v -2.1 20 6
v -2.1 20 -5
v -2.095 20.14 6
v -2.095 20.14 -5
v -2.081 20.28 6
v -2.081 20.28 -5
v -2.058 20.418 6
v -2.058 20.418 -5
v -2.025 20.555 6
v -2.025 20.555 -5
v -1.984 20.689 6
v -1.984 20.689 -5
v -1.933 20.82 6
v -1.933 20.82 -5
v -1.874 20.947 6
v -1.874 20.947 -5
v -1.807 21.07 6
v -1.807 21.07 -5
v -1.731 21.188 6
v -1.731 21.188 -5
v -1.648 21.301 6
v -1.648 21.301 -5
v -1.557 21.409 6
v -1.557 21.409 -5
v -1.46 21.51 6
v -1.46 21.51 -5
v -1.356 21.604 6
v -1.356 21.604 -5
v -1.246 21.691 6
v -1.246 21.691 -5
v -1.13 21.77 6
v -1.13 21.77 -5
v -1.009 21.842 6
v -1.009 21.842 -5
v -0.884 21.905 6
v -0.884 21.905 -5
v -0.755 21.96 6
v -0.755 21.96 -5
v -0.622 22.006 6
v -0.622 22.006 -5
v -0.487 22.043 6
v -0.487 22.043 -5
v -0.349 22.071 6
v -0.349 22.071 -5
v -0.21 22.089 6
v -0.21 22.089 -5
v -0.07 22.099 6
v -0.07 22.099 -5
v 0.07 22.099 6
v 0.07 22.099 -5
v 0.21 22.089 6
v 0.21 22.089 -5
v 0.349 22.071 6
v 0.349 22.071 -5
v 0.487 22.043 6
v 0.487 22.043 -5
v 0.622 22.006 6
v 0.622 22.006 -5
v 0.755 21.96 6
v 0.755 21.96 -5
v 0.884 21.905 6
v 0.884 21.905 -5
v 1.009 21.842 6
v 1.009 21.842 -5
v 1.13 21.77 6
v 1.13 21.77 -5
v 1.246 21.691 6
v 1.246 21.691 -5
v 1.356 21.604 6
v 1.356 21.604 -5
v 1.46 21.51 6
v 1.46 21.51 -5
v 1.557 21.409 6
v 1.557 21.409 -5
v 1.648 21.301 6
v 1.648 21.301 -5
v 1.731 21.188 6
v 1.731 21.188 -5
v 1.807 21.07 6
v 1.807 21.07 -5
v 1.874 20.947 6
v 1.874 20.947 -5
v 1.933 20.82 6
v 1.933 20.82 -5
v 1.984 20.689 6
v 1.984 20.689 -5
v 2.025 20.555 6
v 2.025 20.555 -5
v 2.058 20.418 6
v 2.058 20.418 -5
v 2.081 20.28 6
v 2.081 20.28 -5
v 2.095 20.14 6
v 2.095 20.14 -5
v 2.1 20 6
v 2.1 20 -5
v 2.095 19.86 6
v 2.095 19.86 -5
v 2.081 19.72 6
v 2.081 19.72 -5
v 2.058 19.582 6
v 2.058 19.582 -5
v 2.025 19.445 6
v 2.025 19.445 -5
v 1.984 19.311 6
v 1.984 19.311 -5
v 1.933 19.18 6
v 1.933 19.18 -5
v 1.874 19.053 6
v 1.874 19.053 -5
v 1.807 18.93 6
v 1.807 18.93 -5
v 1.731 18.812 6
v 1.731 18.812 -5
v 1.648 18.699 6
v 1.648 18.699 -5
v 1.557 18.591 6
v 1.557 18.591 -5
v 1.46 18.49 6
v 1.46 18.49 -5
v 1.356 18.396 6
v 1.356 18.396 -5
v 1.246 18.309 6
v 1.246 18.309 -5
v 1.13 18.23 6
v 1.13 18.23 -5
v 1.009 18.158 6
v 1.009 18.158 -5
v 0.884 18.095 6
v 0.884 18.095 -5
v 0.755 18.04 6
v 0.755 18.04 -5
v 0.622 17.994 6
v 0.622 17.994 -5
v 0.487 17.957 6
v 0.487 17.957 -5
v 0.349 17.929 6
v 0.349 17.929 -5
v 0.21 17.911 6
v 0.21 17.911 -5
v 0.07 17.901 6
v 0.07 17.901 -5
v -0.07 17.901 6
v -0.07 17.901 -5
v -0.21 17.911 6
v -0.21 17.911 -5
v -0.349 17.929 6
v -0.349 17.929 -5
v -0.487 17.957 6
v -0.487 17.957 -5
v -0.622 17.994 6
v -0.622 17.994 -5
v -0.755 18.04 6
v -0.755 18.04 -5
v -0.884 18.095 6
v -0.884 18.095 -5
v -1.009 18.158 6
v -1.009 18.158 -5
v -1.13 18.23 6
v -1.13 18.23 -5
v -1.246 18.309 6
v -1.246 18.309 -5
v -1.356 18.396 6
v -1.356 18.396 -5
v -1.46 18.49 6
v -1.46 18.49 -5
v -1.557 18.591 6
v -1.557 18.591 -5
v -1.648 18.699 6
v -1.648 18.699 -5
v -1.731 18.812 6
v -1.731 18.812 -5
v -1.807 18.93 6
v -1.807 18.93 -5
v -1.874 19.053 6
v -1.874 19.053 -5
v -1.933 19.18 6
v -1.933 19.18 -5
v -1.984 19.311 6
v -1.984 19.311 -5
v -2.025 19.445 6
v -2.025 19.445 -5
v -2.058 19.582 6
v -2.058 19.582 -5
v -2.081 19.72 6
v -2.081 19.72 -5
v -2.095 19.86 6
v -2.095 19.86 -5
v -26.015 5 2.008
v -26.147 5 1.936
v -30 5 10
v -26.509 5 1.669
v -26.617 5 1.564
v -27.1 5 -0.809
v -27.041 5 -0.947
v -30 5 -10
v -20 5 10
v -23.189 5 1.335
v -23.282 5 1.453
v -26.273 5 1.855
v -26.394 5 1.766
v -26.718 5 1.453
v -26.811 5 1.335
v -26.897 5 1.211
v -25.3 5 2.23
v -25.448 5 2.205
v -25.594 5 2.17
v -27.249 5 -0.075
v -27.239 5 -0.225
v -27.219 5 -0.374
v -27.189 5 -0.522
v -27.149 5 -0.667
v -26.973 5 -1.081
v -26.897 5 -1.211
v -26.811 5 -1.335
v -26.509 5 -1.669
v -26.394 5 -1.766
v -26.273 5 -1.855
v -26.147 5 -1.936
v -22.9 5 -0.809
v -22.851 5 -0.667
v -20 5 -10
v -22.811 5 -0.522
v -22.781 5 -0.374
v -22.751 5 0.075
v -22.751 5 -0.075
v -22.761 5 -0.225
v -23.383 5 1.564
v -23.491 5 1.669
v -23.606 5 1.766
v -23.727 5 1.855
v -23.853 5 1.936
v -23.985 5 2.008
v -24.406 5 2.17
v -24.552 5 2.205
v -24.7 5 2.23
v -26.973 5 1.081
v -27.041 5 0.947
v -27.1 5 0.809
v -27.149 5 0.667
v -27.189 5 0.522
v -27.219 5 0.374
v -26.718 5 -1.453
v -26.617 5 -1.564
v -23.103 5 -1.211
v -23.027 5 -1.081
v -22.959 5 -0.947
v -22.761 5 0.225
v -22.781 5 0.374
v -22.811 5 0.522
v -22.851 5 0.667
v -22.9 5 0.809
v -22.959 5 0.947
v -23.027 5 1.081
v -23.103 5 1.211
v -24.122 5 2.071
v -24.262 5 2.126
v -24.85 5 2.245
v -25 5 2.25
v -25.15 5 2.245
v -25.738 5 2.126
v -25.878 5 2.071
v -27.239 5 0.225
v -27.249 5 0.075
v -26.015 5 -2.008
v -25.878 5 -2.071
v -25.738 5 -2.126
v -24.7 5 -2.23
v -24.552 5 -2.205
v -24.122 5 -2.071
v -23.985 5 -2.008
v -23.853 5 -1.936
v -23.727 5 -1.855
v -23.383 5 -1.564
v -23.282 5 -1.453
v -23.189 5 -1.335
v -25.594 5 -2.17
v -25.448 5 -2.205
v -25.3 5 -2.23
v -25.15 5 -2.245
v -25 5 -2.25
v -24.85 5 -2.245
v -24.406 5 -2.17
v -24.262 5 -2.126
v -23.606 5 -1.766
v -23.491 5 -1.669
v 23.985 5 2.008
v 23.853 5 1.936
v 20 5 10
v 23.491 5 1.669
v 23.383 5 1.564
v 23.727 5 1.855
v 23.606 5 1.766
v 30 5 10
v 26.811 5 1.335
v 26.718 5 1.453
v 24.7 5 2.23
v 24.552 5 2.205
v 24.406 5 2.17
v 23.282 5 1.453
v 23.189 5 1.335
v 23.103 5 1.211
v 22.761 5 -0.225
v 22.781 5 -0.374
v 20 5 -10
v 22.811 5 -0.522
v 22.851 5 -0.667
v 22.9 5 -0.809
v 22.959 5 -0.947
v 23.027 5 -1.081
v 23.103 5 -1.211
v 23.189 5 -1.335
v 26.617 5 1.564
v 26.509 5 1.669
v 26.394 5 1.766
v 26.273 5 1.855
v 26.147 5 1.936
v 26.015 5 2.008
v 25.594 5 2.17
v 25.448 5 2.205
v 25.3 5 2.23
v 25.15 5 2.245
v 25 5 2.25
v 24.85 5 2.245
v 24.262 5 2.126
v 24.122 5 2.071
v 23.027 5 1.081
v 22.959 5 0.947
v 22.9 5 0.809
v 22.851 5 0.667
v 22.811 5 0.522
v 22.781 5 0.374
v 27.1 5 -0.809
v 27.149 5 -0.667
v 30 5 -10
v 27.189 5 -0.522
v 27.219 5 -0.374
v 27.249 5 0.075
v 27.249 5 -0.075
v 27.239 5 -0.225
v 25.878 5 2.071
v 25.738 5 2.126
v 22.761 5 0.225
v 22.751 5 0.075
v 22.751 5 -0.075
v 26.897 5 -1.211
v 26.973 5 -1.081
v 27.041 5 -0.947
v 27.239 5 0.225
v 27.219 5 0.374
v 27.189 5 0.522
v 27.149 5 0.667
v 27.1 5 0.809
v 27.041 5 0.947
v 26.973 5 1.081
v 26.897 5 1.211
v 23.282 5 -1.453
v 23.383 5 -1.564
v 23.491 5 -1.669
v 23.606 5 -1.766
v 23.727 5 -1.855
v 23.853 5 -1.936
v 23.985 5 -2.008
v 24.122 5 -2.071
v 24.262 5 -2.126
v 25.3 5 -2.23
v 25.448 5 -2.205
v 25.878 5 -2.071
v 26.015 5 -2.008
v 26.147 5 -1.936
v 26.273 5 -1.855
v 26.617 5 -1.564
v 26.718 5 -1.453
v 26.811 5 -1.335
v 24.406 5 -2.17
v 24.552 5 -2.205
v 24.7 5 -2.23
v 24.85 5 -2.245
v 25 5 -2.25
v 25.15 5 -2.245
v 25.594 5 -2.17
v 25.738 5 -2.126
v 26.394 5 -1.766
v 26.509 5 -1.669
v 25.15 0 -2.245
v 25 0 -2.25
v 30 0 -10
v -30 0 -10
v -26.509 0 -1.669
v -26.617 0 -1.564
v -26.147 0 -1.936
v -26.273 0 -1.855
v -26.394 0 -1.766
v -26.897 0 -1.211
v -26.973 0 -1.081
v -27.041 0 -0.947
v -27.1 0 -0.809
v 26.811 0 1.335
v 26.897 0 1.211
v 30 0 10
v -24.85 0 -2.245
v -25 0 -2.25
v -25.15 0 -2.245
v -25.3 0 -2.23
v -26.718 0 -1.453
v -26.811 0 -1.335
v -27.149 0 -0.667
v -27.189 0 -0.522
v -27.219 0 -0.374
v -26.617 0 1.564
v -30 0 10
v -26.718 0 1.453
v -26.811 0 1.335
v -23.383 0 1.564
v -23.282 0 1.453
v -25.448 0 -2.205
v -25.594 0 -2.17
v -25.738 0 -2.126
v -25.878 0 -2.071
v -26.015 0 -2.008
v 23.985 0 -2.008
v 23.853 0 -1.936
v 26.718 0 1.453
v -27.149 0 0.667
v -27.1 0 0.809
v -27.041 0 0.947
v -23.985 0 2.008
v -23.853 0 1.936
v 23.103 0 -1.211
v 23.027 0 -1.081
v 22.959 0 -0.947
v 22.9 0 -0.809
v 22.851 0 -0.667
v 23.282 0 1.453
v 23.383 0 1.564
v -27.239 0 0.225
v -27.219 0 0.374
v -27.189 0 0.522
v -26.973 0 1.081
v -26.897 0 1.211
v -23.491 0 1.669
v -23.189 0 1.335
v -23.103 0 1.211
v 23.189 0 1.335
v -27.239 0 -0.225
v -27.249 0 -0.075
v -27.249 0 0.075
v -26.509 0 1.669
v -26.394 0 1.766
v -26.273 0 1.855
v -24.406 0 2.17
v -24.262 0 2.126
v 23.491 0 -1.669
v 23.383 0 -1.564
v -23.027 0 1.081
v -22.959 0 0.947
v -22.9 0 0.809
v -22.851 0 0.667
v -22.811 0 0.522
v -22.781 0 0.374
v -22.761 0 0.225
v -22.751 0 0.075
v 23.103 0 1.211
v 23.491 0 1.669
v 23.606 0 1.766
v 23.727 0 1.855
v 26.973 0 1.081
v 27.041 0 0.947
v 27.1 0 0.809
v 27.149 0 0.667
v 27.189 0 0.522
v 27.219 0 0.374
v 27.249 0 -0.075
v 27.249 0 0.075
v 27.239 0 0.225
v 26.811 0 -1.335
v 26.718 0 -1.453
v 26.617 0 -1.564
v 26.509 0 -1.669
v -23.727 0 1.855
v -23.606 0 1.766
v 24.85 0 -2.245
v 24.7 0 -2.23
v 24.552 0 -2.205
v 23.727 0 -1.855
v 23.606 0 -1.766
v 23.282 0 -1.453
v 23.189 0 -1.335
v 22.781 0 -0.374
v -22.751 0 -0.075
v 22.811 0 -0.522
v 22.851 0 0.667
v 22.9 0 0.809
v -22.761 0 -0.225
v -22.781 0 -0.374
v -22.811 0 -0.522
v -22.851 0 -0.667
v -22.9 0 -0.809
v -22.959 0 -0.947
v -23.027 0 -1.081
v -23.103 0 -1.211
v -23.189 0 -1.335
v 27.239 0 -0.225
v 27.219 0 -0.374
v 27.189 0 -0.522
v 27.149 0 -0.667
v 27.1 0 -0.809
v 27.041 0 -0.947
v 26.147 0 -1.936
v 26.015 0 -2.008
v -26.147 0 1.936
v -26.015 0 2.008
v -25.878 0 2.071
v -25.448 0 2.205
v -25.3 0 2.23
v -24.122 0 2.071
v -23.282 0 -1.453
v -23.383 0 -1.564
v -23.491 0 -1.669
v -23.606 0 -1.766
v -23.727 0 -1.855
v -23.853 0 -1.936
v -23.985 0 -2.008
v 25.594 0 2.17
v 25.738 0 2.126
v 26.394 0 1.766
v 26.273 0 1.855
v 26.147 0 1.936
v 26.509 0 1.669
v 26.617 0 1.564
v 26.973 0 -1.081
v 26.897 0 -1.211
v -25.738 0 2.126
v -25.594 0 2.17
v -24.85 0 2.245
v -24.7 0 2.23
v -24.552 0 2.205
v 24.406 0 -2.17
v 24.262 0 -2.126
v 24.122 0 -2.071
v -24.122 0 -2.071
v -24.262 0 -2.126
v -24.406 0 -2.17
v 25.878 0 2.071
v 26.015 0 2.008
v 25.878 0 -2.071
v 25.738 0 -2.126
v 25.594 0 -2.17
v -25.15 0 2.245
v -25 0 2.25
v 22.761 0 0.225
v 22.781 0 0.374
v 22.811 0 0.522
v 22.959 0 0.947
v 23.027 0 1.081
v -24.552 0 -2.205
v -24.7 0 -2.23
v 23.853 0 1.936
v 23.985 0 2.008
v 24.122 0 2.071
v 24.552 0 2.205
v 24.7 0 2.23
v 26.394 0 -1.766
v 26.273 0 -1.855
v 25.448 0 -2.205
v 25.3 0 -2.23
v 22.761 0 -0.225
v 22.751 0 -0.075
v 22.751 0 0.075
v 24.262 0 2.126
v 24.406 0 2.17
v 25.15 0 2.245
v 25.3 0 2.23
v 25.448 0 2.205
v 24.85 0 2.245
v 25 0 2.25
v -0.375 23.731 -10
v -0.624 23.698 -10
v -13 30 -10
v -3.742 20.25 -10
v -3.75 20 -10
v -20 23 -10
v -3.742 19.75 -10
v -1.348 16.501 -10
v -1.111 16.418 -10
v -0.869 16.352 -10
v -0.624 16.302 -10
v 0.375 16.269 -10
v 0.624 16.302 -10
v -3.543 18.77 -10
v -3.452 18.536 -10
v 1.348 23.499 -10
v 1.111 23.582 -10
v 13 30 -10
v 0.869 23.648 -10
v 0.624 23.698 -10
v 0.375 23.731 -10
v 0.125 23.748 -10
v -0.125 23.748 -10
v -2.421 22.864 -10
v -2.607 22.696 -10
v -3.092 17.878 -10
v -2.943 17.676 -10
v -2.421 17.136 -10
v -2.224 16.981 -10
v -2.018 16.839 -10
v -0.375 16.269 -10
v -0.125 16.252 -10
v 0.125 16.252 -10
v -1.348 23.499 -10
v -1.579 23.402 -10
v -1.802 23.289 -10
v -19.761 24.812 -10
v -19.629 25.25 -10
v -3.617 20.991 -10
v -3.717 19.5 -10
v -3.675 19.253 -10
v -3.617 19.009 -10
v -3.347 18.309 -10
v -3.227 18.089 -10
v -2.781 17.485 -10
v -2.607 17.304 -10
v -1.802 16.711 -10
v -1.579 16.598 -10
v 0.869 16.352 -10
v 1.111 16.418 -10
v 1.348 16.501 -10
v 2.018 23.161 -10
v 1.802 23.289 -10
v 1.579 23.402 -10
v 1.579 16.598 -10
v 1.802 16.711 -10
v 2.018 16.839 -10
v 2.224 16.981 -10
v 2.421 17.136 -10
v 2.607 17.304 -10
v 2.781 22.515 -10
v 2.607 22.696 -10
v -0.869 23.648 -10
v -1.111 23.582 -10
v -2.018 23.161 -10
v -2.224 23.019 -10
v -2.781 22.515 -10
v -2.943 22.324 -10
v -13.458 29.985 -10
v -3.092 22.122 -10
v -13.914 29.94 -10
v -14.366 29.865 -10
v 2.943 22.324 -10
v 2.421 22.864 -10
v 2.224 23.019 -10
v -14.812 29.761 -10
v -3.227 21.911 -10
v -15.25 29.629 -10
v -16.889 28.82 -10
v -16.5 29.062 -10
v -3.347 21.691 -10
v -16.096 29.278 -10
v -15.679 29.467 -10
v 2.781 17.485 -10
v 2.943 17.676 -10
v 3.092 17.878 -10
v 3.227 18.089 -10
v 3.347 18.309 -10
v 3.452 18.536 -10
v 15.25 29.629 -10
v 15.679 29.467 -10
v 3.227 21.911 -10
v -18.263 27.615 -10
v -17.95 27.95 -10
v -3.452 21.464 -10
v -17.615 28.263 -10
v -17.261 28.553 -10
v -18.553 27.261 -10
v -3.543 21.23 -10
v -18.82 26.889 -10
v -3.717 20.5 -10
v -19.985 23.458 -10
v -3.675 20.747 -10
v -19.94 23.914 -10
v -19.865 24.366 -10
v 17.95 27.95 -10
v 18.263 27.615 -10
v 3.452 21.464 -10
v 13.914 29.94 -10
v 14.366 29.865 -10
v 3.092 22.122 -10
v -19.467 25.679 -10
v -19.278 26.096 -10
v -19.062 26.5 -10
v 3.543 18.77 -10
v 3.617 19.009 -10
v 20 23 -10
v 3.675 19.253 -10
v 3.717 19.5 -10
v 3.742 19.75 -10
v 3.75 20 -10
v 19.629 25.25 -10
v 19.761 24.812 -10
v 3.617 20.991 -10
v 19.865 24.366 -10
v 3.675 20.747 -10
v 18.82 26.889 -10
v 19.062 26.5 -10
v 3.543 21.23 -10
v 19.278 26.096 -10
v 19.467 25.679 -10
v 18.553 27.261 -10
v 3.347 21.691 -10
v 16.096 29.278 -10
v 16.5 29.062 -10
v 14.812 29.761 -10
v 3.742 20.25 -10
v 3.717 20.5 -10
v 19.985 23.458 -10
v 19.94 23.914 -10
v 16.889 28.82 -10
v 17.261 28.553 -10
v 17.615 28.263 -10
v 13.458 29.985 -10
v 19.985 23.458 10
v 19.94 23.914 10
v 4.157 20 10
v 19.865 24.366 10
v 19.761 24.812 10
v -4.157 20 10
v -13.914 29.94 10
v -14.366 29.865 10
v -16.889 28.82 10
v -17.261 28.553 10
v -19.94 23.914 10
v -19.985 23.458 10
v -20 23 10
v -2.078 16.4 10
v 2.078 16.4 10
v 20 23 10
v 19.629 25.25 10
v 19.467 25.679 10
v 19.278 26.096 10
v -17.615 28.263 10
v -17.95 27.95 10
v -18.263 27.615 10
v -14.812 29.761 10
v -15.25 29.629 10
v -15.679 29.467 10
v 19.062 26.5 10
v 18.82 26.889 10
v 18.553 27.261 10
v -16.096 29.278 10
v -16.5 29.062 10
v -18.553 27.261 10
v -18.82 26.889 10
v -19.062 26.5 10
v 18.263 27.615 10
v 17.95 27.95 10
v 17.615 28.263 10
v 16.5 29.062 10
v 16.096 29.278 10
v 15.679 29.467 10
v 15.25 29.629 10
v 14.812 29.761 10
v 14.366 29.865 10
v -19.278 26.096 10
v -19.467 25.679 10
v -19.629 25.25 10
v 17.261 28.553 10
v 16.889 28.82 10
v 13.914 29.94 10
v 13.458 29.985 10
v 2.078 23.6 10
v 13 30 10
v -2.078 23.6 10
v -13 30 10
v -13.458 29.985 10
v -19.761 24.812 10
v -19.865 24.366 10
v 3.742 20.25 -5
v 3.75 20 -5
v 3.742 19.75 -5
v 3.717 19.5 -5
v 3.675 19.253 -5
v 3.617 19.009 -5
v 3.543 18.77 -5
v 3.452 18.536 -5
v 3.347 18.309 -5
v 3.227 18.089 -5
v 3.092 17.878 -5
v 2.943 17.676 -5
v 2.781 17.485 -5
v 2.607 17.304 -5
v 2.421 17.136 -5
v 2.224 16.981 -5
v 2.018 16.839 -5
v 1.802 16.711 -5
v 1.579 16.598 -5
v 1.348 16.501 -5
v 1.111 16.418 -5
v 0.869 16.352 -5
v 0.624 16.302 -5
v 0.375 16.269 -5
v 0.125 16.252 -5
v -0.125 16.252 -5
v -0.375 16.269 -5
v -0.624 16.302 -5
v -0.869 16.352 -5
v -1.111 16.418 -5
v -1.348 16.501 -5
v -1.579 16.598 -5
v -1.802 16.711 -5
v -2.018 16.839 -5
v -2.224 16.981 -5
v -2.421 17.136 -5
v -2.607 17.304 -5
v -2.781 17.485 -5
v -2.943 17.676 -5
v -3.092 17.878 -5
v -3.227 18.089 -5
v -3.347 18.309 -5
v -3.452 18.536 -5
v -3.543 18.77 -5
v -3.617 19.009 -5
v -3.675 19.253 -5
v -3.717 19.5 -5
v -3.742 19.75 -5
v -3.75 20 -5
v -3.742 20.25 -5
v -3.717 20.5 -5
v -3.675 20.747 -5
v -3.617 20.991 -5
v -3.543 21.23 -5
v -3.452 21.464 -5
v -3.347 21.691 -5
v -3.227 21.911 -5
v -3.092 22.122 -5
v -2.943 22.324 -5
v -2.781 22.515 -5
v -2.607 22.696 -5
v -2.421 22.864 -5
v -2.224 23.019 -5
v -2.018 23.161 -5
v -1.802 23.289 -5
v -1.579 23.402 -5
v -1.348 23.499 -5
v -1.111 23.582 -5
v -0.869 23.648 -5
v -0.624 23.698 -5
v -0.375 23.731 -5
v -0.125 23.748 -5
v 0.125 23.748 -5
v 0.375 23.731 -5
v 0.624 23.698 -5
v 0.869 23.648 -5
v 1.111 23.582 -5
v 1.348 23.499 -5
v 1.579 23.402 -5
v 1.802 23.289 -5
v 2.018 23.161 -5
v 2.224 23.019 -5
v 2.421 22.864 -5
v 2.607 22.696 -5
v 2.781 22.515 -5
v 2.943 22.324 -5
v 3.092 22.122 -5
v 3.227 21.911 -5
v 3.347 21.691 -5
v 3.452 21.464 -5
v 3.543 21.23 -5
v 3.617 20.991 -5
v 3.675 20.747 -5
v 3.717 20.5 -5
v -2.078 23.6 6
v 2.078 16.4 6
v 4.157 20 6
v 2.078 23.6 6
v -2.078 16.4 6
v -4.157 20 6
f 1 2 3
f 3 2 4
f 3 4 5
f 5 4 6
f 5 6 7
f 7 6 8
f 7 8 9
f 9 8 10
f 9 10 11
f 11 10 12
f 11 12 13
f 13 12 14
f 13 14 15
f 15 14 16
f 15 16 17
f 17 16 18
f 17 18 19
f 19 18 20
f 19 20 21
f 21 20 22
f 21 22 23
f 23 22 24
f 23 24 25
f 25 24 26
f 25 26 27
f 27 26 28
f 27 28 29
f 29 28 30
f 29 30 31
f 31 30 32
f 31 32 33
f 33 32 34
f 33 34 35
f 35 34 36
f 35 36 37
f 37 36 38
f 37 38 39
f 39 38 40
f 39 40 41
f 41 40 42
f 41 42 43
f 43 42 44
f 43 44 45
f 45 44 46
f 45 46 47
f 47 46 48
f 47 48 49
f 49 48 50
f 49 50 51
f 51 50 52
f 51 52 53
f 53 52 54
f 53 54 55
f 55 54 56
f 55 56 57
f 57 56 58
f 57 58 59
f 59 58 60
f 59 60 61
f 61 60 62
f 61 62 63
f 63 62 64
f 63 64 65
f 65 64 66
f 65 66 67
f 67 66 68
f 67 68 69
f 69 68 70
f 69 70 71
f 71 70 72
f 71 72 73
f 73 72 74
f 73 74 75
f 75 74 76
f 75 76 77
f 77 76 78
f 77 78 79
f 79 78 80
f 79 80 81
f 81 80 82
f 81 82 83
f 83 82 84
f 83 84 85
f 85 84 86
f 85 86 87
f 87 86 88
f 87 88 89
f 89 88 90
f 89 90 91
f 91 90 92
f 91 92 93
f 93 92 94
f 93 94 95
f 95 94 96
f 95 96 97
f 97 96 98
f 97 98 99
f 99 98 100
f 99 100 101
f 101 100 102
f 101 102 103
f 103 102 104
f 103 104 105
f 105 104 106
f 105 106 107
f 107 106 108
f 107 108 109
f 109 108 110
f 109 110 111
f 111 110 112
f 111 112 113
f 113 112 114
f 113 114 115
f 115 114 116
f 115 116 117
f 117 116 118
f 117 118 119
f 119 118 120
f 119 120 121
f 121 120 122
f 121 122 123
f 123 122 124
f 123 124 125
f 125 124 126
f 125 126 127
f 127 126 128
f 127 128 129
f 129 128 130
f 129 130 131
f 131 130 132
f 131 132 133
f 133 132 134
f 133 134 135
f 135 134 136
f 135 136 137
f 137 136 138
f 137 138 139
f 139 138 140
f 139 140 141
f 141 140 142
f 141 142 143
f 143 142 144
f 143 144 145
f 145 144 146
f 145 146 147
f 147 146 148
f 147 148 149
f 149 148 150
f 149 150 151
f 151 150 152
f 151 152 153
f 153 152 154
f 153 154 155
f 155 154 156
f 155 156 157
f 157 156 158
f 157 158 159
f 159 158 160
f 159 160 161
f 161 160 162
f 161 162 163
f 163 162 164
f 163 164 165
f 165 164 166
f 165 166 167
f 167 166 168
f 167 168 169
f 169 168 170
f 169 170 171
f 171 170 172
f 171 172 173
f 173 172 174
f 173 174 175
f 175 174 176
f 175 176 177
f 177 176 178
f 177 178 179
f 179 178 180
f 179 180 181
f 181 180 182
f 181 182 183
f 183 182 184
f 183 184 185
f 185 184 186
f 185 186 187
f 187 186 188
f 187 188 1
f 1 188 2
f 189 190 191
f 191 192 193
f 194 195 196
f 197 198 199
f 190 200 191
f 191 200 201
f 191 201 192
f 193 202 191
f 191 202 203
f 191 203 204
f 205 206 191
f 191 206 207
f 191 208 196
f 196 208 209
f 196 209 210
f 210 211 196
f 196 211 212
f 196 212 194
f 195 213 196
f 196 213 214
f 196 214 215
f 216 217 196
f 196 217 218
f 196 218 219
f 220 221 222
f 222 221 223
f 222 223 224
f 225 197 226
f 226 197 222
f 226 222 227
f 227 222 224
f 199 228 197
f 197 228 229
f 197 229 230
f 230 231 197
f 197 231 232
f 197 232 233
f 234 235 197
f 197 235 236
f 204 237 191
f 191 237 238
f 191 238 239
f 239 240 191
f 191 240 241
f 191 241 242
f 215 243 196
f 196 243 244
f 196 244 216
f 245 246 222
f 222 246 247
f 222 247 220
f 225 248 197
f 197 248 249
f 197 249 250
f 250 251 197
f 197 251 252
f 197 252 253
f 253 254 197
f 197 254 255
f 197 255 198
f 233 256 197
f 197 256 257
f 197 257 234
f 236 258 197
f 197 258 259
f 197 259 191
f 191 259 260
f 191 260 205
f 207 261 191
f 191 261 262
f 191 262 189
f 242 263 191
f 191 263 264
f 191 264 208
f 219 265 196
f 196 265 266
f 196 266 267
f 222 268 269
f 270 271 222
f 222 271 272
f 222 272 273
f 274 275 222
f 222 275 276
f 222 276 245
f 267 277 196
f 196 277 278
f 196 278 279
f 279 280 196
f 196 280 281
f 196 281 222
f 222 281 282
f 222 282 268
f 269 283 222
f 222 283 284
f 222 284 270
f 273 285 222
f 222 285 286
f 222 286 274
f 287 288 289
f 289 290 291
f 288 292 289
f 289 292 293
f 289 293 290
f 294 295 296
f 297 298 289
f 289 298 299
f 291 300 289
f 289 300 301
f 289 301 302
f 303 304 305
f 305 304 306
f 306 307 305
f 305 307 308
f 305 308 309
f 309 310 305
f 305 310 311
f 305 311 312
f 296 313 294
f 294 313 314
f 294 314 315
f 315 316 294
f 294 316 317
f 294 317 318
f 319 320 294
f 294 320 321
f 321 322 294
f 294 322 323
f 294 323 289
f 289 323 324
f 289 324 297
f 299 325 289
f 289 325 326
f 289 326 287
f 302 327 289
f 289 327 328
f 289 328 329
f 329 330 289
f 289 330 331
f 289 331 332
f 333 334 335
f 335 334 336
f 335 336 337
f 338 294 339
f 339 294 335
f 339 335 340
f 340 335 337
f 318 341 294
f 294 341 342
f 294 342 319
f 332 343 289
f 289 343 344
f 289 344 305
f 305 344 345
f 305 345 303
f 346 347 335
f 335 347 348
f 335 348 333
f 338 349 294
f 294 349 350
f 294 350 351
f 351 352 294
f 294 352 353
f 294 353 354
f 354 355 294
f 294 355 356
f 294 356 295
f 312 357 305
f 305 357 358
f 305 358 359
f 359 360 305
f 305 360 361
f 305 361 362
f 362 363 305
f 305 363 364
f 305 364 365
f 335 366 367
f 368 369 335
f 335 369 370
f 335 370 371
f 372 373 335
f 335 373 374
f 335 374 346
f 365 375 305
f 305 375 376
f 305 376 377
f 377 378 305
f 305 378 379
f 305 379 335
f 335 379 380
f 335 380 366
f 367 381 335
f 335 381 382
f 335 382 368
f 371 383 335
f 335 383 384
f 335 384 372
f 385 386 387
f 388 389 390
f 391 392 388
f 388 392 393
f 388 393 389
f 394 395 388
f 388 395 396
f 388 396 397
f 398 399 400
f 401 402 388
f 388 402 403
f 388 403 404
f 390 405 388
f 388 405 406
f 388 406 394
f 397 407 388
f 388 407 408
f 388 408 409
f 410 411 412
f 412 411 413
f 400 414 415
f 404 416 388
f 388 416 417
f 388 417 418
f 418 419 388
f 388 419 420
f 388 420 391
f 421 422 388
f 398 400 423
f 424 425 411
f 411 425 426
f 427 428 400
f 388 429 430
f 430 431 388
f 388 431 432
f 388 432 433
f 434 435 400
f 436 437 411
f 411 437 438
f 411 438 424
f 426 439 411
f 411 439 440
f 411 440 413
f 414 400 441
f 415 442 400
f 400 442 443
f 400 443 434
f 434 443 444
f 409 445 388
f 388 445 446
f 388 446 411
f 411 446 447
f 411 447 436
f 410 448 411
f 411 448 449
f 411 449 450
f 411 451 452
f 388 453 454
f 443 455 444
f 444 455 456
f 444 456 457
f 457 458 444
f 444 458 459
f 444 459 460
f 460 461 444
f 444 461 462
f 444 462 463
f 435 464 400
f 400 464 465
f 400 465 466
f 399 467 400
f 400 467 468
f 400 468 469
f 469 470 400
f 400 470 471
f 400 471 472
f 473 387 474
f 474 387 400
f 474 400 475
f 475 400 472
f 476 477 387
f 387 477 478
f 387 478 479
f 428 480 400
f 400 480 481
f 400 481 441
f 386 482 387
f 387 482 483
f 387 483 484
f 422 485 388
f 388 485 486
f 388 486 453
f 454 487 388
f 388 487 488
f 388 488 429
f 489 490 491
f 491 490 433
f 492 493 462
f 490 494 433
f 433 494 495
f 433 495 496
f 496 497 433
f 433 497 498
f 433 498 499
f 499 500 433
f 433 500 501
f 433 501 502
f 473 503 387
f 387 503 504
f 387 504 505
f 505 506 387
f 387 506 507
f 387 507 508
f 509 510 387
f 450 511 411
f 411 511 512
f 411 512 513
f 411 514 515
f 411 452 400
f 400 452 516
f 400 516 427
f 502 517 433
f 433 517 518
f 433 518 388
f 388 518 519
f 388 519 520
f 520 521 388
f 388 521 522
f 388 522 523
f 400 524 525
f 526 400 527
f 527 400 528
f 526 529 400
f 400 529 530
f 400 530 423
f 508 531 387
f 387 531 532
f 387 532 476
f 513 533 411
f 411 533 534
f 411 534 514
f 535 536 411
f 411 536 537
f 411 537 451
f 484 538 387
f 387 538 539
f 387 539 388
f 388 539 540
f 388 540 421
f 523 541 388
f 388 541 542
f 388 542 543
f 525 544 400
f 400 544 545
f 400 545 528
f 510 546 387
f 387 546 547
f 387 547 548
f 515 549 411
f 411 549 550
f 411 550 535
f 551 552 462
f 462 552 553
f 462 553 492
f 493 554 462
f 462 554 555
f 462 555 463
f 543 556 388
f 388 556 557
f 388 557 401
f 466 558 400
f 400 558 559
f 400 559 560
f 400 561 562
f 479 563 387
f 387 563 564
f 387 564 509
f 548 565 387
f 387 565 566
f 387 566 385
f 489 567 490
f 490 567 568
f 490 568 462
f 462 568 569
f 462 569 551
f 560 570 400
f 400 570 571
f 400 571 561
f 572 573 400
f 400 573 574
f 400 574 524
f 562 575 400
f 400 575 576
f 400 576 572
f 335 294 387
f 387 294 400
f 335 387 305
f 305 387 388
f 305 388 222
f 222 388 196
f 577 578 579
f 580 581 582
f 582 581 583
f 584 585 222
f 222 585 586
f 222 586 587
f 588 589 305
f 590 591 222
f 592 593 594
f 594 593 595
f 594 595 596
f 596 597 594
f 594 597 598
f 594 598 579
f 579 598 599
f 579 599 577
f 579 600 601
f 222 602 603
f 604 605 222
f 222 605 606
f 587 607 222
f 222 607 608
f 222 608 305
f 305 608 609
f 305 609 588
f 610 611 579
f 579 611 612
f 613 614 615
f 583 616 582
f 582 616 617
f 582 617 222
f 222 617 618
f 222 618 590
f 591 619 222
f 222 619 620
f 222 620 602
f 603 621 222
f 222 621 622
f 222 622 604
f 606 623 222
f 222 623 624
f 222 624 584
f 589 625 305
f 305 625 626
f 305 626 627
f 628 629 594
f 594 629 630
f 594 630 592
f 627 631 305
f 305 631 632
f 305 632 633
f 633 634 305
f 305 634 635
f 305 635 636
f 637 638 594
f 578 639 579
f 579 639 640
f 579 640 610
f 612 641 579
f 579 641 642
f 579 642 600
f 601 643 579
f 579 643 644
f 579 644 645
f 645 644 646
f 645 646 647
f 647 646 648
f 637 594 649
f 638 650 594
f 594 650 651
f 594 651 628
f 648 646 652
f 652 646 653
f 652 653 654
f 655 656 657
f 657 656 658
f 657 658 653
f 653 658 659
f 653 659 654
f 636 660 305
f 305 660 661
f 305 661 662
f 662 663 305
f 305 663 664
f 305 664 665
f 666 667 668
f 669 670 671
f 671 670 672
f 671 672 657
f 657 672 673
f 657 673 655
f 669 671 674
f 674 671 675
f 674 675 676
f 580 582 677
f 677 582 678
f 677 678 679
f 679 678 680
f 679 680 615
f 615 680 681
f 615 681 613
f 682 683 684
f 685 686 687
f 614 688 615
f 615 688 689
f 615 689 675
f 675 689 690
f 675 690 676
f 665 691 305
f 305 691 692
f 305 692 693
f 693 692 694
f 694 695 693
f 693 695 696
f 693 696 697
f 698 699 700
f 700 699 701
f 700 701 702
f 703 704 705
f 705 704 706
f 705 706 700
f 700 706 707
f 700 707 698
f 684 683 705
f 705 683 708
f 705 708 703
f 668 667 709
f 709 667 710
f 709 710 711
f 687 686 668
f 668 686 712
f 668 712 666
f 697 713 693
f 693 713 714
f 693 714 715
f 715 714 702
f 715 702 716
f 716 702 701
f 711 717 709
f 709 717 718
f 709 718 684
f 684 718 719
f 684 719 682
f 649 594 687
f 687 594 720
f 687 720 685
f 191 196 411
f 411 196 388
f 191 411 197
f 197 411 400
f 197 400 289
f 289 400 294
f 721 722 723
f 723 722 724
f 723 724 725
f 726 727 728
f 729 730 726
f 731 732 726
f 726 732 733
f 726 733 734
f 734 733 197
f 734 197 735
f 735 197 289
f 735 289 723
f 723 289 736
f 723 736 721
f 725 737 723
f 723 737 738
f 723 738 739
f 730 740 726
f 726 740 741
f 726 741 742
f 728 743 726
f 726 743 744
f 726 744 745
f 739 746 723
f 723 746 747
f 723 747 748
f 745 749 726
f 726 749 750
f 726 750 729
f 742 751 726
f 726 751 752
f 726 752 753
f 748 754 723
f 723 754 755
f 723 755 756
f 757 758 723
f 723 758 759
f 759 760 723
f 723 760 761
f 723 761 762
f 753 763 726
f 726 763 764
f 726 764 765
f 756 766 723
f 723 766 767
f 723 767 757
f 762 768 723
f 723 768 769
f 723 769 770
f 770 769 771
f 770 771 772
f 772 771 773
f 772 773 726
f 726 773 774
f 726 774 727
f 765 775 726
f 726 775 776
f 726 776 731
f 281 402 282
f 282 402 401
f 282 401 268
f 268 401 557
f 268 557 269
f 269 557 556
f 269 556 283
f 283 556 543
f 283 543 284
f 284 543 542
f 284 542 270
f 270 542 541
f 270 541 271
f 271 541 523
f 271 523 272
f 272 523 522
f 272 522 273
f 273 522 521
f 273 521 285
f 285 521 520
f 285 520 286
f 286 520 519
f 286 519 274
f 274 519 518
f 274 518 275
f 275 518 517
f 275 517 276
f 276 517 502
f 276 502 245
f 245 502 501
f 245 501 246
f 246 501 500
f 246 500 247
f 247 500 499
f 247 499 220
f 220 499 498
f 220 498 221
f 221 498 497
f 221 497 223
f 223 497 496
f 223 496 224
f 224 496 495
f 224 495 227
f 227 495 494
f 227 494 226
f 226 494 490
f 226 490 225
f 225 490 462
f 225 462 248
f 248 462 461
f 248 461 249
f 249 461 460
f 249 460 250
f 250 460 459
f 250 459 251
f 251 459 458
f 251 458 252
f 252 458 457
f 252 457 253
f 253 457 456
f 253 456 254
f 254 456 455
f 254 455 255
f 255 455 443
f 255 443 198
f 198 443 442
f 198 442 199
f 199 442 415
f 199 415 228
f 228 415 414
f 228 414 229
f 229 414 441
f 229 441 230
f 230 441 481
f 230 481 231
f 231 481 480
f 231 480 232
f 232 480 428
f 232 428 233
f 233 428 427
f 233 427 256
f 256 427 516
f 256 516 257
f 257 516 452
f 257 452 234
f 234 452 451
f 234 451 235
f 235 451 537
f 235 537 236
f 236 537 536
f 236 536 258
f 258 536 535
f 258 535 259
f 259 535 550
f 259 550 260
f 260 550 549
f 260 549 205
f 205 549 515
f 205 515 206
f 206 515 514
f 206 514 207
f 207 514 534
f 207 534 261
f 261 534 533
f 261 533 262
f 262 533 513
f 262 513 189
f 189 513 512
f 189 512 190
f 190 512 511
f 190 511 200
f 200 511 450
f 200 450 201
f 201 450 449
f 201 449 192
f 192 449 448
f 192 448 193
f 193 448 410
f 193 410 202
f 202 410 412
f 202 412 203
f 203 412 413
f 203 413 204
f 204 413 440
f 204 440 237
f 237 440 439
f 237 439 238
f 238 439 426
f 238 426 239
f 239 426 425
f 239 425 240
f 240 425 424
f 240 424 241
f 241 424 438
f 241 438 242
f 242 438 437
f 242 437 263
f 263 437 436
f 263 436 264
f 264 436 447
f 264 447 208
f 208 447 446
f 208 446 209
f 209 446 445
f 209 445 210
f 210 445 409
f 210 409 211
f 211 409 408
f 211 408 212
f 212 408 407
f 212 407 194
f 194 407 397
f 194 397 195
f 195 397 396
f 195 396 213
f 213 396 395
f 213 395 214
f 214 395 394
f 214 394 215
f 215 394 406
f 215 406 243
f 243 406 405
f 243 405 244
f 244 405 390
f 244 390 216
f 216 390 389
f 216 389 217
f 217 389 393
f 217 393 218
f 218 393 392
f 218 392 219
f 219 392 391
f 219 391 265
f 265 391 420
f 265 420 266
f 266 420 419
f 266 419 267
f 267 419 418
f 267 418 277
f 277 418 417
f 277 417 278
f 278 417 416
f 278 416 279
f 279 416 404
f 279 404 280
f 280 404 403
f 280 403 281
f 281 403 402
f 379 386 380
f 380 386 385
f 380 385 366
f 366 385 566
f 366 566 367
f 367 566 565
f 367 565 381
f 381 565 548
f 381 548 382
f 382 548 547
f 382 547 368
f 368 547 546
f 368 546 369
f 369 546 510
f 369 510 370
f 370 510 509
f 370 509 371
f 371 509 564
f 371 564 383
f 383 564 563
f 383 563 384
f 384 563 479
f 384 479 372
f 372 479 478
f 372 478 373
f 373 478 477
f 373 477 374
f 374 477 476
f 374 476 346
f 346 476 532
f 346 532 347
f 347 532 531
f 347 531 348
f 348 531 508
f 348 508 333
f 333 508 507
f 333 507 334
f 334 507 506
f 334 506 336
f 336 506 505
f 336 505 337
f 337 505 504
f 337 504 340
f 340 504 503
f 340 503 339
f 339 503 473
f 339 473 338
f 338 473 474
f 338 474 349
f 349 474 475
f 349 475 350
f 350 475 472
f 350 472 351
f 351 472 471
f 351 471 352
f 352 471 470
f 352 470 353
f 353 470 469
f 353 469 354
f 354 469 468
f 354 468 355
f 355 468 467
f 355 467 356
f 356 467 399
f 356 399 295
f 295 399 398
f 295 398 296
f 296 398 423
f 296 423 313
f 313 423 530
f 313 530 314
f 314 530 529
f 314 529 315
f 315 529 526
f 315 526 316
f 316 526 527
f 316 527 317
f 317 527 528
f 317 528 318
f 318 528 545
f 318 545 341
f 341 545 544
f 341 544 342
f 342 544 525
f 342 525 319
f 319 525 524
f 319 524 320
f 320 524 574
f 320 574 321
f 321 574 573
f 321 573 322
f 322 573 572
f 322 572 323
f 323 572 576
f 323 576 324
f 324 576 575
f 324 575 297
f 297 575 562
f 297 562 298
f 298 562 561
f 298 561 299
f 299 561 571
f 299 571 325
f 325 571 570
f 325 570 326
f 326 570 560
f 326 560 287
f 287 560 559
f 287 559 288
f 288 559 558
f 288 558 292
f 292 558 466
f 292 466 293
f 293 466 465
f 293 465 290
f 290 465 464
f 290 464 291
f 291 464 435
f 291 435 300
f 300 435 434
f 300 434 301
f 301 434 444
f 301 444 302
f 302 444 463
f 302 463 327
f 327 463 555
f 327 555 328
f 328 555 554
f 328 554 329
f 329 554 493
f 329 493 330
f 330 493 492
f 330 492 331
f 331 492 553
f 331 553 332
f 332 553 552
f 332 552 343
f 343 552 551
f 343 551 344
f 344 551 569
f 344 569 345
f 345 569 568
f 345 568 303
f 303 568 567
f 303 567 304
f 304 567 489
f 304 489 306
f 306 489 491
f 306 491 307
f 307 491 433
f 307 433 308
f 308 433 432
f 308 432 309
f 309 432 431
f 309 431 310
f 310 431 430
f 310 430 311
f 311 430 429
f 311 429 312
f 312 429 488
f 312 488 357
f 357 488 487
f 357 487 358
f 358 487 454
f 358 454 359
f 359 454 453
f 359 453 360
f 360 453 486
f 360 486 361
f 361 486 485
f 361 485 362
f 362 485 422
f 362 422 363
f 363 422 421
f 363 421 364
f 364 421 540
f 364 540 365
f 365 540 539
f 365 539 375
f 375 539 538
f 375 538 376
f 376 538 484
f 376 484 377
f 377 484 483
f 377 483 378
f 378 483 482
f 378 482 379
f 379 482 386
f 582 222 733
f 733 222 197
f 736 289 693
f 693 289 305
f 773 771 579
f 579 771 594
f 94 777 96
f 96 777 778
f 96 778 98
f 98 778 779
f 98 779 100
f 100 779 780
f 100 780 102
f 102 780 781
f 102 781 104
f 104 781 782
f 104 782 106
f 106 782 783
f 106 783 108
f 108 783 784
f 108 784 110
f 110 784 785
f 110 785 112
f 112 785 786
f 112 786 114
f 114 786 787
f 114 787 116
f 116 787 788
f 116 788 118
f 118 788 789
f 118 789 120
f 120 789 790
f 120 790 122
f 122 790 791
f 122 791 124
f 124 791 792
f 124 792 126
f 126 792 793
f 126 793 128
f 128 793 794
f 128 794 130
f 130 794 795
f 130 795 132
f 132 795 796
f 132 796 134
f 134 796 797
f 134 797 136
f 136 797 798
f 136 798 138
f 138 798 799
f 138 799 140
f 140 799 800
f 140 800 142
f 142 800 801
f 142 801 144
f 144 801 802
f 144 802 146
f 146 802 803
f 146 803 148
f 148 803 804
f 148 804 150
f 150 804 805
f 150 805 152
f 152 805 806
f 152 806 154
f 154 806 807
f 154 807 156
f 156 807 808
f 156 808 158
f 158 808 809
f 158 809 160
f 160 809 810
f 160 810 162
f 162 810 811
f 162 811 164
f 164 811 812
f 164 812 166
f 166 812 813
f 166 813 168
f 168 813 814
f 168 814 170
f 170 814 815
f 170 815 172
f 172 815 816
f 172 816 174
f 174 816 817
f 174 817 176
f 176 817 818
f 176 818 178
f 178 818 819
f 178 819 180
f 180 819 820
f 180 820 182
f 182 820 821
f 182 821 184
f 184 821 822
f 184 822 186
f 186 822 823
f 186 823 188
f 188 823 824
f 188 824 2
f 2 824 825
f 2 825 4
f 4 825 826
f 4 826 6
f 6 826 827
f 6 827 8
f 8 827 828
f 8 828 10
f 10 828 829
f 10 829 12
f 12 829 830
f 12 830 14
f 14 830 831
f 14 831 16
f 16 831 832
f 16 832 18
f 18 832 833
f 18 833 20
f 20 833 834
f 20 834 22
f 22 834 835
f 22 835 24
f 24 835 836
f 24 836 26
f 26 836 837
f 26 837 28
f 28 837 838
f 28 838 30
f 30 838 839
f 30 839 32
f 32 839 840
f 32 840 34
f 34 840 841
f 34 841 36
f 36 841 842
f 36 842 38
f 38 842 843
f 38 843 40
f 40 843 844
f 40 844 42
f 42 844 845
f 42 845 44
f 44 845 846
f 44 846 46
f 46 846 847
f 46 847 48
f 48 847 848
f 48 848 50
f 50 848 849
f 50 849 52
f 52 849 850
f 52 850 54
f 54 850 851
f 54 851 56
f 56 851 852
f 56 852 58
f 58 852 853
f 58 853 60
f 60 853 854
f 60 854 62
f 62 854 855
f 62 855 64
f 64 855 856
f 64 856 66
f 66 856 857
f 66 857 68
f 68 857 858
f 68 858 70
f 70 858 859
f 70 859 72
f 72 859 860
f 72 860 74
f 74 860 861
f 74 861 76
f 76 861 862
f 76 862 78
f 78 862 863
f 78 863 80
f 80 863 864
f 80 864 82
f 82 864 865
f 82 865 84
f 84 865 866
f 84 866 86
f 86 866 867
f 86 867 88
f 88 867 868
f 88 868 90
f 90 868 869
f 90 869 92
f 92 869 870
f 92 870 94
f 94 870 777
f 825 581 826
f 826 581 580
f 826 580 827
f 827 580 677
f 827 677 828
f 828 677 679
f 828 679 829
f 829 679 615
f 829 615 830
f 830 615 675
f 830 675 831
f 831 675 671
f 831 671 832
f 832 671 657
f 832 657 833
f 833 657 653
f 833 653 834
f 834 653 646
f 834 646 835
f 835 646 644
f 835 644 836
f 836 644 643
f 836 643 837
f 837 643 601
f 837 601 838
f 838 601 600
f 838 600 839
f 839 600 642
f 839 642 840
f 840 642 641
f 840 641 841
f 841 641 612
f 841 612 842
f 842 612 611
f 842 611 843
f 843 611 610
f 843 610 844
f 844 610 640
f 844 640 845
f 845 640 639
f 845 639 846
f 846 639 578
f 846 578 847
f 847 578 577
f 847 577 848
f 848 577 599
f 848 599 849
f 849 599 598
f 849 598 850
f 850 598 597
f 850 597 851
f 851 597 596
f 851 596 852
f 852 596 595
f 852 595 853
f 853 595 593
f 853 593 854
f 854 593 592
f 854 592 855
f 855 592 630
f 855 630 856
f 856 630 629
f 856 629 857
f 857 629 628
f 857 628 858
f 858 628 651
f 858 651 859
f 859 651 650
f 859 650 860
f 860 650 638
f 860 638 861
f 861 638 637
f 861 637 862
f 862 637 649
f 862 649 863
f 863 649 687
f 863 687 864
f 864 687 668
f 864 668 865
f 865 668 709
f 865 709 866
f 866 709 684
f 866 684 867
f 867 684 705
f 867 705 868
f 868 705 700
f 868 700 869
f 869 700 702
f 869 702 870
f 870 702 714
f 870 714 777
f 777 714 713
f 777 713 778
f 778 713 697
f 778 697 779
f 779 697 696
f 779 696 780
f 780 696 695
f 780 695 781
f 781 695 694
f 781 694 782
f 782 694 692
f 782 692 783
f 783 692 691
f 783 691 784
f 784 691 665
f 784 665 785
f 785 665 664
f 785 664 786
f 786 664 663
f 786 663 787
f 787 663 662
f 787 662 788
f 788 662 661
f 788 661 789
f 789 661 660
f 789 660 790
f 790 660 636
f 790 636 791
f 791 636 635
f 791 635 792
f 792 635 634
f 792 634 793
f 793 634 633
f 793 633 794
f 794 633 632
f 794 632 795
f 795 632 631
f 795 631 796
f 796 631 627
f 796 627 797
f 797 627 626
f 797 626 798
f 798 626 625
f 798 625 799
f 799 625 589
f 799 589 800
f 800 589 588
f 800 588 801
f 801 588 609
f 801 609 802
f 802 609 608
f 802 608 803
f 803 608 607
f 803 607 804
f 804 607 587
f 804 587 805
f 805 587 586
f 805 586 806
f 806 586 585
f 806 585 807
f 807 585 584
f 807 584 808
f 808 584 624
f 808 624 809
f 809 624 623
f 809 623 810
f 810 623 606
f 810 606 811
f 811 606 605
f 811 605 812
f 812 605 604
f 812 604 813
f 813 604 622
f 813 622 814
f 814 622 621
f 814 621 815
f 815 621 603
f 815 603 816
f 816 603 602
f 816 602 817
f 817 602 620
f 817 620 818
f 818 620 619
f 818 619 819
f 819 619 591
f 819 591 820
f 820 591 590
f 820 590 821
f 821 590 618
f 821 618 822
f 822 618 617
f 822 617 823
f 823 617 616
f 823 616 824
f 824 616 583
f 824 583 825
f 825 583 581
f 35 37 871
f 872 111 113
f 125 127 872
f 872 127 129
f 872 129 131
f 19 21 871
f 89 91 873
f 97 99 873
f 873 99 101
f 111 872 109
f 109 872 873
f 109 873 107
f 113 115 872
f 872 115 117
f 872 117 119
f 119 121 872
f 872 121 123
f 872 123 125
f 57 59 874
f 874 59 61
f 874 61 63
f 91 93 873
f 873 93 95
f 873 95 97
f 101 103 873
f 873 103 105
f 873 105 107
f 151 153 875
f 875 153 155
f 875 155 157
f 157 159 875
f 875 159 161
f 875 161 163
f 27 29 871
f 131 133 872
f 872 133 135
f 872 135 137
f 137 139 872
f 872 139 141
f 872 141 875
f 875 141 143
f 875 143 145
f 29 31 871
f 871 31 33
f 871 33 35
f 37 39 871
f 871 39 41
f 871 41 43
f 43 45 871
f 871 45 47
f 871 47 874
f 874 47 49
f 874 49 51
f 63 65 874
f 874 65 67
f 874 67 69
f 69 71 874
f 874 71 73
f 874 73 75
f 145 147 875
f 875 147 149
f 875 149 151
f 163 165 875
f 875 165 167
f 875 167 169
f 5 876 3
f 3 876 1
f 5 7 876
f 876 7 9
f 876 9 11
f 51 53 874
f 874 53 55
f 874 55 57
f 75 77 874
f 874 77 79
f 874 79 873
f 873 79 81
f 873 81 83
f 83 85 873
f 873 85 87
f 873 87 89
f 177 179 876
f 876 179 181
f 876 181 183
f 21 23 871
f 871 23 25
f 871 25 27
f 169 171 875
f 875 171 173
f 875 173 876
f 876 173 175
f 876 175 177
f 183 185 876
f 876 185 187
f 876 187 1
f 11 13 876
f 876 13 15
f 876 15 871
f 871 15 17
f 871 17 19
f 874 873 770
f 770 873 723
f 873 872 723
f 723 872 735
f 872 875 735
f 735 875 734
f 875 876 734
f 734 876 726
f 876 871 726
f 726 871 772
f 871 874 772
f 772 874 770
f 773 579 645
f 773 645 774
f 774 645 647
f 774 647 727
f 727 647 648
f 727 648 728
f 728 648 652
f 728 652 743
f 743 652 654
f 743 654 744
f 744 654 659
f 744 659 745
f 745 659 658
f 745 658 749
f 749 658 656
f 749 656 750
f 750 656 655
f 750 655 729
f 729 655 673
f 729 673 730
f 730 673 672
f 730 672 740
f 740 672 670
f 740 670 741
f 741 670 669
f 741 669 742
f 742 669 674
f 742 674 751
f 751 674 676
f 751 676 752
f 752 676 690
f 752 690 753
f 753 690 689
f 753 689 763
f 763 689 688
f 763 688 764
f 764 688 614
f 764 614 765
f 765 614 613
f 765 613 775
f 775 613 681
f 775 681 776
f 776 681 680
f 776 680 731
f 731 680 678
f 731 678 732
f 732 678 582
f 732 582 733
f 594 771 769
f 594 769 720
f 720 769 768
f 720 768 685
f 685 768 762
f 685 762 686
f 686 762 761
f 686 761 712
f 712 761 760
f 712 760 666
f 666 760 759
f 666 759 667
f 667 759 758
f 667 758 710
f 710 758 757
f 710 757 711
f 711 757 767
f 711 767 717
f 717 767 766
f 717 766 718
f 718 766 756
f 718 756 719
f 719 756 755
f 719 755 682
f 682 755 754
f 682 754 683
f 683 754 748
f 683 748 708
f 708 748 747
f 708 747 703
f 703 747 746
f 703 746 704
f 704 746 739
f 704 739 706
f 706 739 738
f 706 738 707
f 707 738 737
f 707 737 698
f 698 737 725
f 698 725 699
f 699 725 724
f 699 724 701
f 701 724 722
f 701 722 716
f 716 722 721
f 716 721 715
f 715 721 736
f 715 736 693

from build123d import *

# Parameters (mm, degrees)
SKETCH1_W               = 60
SKETCH1_H               = 20
SKETCH1_R               = 2.25
BOSS_EXTRUDE1_DEPTH     = 5
SKETCH2_W               = 40
SKETCH2_H               = 20
BOSS_EXTRUDE2_DEPTH     = 25
SKETCH3_R               = 2.1
CUT_EXTRUDE1_DEPTH      = 1
CUT_EXTRUDE1_DEPTH_BACK = 21
SKETCH4_R               = 3.75
CUT_EXTRUDE2_DEPTH      = 5
CUT_EXTRUDE3_DEPTH      = 4
FILLET1_R               = 7


with BuildPart() as part:
    # Sketch1 → Boss-Extrude1 (new body)
    with BuildSketch(Plane(origin=(0, 0, 0), x_dir=(1, 0, 0), z_dir=(0, 1, 0))):
        Rectangle(SKETCH1_W, SKETCH1_H)
        with Locations((-25, 0)):
            Circle(SKETCH1_R, mode=Mode.SUBTRACT)
        with Locations((25, 0)):
            Circle(SKETCH1_R, mode=Mode.SUBTRACT)
    extrude(amount=BOSS_EXTRUDE1_DEPTH)

    # Sketch2 → Boss-Extrude2 (add)
    with BuildSketch(Plane(origin=(0, 5, 0), x_dir=(1, 0, 0), z_dir=(0, 1, 0))):
        Rectangle(SKETCH2_W, SKETCH2_H)
    extrude(amount=BOSS_EXTRUDE2_DEPTH)

    # Sketch3 → Cut-Extrude1 (cut, two sides)
    with BuildSketch(Plane(origin=(0, 0, -10), x_dir=(-1, 0, 0), z_dir=(0, 0, -1))) as cut_extrude1_sk:
        with Locations((0, 20)):
            Circle(SKETCH3_R)
    extrude(amount=CUT_EXTRUDE1_DEPTH, mode=Mode.SUBTRACT)
    extrude(cut_extrude1_sk.sketch, amount=-CUT_EXTRUDE1_DEPTH_BACK, mode=Mode.SUBTRACT)

    # Sketch4 → Cut-Extrude2 (cut)
    with BuildSketch(Plane(origin=(0, 0, -10), x_dir=(-1, 0, 0), z_dir=(0, 0, -1))):
        with Locations((0, 20)):
            Circle(SKETCH4_R)
    extrude(amount=-CUT_EXTRUDE2_DEPTH, mode=Mode.SUBTRACT)

    # Sketch5 → Cut-Extrude3 (cut)
    with BuildSketch(Plane.XY.offset(10)):
        Polygon((2.078460969, 23.6), (-2.078460969, 23.6), (-4.156921938, 20), (-2.078460969, 16.4), (2.078460969, 16.4), (4.156921938, 20), align=None)
    extrude(amount=-CUT_EXTRUDE3_DEPTH, mode=Mode.SUBTRACT)

    # Fillet1
    fillet1_edges = [part.edges().sort_by_distance(p)[0] for p in [
        (-20, 30, 0),
        (20, 30, 0),
    ]]
    fillet(fillet1_edges, radius=FILLET1_R)


solid = part.part
